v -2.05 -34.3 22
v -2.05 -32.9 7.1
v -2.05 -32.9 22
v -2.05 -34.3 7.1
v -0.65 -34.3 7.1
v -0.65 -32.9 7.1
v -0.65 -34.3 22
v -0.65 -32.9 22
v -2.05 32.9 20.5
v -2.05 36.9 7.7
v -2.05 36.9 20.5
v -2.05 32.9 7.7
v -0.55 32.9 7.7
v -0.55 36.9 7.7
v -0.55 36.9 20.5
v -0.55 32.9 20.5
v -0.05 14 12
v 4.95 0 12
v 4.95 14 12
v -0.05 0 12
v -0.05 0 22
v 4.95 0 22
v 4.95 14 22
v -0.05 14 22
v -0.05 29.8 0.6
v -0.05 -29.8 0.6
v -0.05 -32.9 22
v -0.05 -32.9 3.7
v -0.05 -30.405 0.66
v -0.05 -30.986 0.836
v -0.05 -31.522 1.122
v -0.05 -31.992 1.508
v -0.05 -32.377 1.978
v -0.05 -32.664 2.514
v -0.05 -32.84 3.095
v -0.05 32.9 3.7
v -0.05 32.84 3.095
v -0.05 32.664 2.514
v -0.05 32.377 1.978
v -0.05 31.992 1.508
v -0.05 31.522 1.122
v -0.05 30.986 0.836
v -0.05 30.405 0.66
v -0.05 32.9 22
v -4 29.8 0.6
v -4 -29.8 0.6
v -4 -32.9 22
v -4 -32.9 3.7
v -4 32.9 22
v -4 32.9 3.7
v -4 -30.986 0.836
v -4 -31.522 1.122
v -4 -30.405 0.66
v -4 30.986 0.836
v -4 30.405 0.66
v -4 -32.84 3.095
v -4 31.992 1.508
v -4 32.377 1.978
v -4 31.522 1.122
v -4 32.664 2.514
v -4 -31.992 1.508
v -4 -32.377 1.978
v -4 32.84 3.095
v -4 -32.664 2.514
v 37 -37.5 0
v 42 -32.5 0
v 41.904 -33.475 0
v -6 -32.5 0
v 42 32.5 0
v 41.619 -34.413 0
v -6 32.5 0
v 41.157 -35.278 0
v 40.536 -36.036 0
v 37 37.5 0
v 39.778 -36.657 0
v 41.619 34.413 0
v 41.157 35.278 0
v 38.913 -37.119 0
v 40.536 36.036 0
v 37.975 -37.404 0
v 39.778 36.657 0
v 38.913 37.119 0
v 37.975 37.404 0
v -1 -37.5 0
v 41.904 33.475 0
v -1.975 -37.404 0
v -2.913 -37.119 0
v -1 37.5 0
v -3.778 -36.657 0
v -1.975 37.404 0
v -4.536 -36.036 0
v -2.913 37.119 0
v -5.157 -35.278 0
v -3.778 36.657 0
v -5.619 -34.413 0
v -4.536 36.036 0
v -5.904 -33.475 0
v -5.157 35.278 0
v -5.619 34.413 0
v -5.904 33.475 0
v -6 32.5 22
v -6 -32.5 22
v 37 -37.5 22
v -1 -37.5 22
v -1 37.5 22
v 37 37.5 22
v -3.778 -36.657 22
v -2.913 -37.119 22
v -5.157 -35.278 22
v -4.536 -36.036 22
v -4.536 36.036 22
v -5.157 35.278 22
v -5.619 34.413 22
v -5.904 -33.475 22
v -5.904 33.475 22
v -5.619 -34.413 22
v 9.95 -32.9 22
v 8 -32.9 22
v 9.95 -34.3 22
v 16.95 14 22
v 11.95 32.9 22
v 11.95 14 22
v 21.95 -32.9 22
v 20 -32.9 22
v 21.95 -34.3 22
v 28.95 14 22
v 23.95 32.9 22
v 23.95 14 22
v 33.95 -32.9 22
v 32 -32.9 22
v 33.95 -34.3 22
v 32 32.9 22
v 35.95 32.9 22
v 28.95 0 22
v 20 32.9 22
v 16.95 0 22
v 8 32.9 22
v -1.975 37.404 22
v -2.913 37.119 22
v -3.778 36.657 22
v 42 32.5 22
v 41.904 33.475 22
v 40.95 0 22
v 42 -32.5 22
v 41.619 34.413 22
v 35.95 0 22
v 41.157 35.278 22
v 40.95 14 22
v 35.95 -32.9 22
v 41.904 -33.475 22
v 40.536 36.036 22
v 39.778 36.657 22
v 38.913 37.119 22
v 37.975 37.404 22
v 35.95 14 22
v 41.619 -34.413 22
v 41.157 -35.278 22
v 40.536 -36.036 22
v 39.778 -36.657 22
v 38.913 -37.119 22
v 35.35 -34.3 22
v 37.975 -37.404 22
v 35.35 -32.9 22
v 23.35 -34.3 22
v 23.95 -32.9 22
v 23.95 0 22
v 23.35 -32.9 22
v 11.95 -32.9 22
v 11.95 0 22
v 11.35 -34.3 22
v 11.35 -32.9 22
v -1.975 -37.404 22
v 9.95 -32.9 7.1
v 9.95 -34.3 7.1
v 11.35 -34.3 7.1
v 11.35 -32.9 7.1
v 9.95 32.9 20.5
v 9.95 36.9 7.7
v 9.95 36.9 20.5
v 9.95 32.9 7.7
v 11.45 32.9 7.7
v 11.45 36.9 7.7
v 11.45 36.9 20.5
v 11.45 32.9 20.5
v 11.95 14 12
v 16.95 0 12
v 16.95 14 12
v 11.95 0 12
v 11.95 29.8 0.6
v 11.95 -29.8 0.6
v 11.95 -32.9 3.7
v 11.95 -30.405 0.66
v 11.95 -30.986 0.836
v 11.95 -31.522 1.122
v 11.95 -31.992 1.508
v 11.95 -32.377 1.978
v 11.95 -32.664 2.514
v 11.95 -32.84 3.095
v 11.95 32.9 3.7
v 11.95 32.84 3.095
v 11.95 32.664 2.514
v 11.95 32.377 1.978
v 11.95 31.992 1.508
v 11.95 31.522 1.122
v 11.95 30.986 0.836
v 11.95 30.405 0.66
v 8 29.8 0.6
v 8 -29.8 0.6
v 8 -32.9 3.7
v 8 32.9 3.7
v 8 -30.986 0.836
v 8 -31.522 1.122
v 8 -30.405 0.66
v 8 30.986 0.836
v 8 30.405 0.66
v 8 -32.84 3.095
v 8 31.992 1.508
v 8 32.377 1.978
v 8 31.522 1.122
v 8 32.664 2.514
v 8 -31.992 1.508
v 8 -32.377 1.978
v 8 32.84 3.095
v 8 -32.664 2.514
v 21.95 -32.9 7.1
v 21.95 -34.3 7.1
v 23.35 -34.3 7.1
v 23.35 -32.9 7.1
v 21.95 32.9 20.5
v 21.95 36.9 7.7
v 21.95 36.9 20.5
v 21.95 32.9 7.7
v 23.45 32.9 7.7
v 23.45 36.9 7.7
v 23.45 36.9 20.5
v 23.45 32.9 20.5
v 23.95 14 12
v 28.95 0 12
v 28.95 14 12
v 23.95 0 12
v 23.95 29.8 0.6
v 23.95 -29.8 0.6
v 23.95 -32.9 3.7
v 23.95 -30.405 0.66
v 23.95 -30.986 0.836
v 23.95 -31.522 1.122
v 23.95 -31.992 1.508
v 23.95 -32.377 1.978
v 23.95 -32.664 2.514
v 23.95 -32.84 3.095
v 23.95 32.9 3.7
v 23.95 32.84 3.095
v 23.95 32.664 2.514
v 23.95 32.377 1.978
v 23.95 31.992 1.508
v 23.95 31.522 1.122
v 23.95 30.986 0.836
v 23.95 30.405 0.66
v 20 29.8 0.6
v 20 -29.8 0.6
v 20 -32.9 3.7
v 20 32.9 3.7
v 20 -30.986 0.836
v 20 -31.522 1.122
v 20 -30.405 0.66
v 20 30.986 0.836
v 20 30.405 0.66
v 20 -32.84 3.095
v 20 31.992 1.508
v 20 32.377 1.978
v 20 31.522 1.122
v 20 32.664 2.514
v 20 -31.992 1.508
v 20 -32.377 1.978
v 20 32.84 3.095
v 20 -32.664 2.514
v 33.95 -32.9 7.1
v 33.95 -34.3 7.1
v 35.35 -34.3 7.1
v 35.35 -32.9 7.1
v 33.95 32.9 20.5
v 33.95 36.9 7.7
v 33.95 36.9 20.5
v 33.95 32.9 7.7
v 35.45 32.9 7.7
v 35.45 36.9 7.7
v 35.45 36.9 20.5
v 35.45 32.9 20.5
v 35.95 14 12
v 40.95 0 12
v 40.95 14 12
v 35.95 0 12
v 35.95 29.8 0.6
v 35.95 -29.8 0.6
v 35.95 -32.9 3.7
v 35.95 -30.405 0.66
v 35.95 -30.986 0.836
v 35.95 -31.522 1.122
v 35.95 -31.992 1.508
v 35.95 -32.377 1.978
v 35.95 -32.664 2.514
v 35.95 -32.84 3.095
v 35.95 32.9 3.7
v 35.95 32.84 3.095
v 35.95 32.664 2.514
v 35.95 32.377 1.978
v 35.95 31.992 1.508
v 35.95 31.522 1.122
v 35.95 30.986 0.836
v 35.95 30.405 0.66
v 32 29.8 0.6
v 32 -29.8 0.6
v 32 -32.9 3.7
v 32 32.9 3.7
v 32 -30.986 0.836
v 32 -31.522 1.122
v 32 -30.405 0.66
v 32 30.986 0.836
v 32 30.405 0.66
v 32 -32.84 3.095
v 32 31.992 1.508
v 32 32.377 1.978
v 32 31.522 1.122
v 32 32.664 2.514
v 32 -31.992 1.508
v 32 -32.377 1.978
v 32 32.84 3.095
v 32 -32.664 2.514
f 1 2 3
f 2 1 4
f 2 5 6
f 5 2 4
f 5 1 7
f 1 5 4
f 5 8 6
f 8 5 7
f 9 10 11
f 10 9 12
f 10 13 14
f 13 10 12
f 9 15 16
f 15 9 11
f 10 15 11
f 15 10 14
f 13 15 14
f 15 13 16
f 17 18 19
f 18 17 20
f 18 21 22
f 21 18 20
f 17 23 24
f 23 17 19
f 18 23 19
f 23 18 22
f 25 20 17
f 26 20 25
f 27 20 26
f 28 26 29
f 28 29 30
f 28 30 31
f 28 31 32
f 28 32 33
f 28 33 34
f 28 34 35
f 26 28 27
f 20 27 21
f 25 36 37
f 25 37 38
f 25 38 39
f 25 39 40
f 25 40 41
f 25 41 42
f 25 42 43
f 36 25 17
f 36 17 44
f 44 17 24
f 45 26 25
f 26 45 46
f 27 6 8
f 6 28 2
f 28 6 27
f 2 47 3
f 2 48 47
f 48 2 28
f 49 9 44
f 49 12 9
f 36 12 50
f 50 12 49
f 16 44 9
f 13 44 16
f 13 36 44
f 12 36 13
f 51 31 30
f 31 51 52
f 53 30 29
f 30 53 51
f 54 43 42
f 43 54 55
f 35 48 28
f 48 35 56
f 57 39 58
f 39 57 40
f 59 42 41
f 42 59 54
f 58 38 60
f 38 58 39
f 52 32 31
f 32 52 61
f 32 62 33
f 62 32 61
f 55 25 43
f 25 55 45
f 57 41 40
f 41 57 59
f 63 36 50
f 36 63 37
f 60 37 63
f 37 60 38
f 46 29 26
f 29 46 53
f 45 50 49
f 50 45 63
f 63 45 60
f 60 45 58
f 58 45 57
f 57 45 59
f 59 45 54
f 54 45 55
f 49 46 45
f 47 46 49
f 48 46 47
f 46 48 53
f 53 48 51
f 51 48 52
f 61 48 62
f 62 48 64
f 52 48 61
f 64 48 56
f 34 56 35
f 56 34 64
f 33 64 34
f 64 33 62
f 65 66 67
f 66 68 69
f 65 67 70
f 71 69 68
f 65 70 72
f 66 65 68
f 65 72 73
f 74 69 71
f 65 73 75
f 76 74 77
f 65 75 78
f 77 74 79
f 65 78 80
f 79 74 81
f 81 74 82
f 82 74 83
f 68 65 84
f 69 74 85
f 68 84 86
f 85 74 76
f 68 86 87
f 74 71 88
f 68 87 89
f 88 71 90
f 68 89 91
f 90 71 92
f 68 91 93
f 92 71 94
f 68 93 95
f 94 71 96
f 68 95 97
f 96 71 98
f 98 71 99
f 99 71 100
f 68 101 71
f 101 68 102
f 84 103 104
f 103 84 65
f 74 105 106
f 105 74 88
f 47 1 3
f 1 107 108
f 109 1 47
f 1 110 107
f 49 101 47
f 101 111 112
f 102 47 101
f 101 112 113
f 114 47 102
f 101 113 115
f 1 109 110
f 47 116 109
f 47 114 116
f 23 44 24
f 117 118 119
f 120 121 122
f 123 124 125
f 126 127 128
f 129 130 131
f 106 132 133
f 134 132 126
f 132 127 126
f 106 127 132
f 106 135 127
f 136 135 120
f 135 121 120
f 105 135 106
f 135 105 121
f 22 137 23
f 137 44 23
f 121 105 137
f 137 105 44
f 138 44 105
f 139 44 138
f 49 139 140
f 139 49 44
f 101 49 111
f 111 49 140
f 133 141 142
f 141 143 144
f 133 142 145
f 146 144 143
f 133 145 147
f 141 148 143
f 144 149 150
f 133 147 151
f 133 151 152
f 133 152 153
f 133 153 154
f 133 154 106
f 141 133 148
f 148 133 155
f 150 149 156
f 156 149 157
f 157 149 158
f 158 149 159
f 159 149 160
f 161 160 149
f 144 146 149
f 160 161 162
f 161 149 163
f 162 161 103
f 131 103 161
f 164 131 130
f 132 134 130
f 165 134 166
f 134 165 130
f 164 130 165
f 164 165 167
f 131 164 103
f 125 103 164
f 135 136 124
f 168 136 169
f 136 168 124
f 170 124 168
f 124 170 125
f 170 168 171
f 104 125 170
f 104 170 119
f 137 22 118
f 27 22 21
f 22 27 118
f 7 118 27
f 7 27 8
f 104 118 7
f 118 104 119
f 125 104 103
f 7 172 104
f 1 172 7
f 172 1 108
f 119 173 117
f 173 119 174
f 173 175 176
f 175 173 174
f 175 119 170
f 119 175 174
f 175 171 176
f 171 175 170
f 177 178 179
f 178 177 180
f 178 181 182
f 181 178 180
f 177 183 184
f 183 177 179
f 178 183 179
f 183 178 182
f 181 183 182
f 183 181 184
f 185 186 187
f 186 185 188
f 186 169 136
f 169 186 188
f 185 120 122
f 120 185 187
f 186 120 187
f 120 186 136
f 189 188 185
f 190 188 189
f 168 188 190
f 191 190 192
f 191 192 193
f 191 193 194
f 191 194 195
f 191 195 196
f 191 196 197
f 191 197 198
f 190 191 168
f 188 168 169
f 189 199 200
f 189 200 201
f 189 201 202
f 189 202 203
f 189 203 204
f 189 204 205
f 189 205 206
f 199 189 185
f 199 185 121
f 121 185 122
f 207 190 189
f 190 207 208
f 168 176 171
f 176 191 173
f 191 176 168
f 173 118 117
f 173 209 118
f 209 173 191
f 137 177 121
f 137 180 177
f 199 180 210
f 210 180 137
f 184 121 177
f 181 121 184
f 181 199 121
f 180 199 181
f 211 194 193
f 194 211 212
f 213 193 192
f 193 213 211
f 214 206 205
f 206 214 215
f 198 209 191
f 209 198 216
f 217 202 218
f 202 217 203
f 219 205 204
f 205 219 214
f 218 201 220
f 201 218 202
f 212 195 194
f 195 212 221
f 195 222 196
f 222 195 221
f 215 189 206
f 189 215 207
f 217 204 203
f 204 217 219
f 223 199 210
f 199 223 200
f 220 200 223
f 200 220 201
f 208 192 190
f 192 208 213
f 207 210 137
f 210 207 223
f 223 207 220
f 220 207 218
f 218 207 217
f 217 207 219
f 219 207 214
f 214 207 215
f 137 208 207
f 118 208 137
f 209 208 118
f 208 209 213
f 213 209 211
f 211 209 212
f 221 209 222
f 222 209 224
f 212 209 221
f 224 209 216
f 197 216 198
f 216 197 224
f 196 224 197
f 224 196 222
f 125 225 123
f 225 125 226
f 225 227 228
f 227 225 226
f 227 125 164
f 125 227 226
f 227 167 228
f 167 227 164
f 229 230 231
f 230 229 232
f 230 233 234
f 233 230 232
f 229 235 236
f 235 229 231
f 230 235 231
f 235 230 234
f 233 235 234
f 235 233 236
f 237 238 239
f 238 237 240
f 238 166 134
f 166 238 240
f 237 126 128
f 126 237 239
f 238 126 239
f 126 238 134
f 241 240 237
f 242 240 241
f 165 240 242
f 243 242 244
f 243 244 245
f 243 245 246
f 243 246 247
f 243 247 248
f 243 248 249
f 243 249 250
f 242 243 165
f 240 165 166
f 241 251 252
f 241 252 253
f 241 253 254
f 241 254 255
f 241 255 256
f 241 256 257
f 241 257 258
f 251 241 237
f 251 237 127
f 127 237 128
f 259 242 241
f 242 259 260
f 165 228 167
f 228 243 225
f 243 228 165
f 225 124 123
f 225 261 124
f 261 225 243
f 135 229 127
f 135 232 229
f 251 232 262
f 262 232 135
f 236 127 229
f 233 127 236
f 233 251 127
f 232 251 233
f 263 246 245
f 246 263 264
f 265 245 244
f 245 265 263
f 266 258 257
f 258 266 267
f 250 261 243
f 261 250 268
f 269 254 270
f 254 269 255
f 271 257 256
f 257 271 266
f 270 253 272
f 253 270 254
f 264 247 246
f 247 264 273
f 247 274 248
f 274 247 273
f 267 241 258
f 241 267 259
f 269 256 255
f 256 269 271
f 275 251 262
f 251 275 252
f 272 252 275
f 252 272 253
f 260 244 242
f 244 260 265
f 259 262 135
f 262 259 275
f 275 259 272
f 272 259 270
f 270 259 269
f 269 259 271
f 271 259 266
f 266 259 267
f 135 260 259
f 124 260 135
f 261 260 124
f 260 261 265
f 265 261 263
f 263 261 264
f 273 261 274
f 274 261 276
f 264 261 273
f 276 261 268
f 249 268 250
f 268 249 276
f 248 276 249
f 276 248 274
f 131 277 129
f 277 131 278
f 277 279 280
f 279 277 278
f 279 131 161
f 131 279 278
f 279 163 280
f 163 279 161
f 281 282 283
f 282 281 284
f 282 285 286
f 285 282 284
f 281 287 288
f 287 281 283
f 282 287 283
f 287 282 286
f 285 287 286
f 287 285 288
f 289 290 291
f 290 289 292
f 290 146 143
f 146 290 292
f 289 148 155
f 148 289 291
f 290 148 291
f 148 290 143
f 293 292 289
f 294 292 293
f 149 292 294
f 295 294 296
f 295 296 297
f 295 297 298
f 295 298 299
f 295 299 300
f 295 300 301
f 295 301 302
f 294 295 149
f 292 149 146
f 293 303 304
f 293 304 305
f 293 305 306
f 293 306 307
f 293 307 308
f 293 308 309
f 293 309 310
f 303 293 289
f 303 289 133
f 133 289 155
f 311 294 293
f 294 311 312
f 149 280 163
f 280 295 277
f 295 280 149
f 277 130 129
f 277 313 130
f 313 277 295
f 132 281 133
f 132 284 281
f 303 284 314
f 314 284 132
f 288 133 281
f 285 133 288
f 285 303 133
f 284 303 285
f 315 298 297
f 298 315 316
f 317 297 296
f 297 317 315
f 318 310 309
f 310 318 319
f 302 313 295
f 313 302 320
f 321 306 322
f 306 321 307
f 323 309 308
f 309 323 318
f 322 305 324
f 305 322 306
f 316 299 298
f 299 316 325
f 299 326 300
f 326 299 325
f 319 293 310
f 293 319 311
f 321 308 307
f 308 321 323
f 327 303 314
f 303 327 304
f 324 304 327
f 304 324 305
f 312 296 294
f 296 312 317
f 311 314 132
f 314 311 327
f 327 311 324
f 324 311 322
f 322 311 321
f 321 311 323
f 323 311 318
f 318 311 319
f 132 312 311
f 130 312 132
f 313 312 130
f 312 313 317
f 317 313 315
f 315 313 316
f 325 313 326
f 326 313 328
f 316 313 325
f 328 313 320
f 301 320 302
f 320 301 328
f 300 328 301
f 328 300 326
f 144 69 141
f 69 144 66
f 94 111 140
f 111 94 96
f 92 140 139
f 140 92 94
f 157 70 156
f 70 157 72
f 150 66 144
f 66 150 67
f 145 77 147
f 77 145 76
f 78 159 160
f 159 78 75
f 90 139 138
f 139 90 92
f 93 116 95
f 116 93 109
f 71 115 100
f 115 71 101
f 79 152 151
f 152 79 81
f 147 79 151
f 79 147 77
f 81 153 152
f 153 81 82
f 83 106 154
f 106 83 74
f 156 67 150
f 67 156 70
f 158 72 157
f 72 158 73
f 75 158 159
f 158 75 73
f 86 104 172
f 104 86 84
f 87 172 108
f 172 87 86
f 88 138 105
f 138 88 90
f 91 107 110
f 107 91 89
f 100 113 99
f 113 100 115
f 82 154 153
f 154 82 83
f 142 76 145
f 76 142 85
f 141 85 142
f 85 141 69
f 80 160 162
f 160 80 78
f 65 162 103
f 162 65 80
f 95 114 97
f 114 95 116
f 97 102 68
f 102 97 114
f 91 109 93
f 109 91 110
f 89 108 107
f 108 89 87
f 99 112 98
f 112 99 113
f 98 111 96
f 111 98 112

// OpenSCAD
// file: rounded-rect.scad
$fn = 64;

linear_extrude(0, 0, 1) roundedRect(10, 20, 2);

module roundedRect(w, h, r) {
    square([w - 2 * r, h], center = true);
    square([w, h - 2 * r], center = true);
    translate([w/2 - r, h/2 - r, 0]) circle(r = r);
    translate([-(w/2 - r), h/2 - r, 0]) circle(r = r);
    translate([w/2 - r, -(h/2 - r), 0]) circle(r = r);
    translate([-(w/2 - r), -(h/2 - r), 0]) circle(r = r);
}
// file: pi-zero.scad
include <rounded-rect.scad>;

// piZero();

module piZero(includeCables = true, includeHeatsink = true, heightPadding = 0, sdWidth = 12, cameraWidth = 17, printerTolerance = 0) {
    // base board
    color("green")
        linear_extrude(0, 0, 1.55 + 2 + heightPadding + printerTolerance)
            difference() {
                roundedRect(30 + 2 * printerTolerance, 65 + 2 * printerTolerance, 3.5 -printerTolerance);
                *union() {
                    translate([11.5 + printerTolerance, 29 + printerTolerance, 0]) circle(r = 1.25 - printerTolerance);
                    translate([-11.5 - printerTolerance, 29 + printerTolerance, 0]) circle(r = 1.25 - printerTolerance);
                    translate([11.5 + printerTolerance, -29 - printerTolerance, 0]) circle(r = 1.25 - printerTolerance);
                    translate([-11.5 - printerTolerance, -29 - printerTolerance, 0]) circle(r = 1.25 - printerTolerance);
                };
            };
    // top stuff
    translate([0, 0, 1.55 + printerTolerance])
        color("cyan")
            union() {
                // camera port cover
                linear_extrude(0, 0, 1 + heightPadding + printerTolerance)
                    translate([0, -32.5 - printerTolerance, 0])
                        square([cameraWidth + 2 * printerTolerance, 2 + 2 * printerTolerance], center = true);
                // micro usb ports
                translate([-10, -8.9, 1])
                    rotate([0, -90, 0])
                        linear_extrude(0, 0, 6)
                            square([2 + 2 * printerTolerance, 8 + 2 * printerTolerance], center = true);
                translate([-10, -21.5, 1])
                    rotate([0, -90, 0])
                        linear_extrude(0, 0, 6)
                            square([2 + 2 * printerTolerance, 8 + 2 * printerTolerance], center = true);
                // micro usb port things
                if (includeCables) {
                    translate([-15, -8.9, 1])
                        rotate([0, -90, 0])
                            linear_extrude(0, 0, 8)
                                roundedRect(8, 11, 1);
                    translate([-15, -21.5, 1])
                        rotate([0, -90, 0])
                            linear_extrude(0, 0, 8)
                                roundedRect(8, 11, 1);
                }
                // micro hdmi port
                translate([-7, 20.1, 1.7])
                    rotate([0, -90, 0])
                        linear_extrude(0, 0, 9.5)
                            square([3.4 + 2 * printerTolerance, 11.5 + 2 * printerTolerance], center = true);
                // micro hdmi adapter
                if (includeCables) {
                    translate([-15, 20.1, 1.7])
                        rotate([0, -90, 0])
                            linear_extrude(0, 0, 9.5)
                                roundedRect(9 + 2 * printerTolerance, 14 + 2* printerTolerance, 2);
                }
                
                // microsd card
                translate([1.9, 28, 0])
                    linear_extrude(0, 0, 1.5 + heightPadding)
                        square([sdWidth + 2 * printerTolerance, 17 + 2 * printerTolerance], center = true);
                // cpu heatsink
                translate([-3, 32.5 - 18.5 - 7, 0])
                    linear_extrude(0, 0, 7)
                        square([14, 14], center = true);
            };
}
// main file
include <pi-zero.scad>;

$fn = 32;

numSlots = 4;
slotWidth = 12;
slotLength = 75;
height = 22;

intersection() {
    for (i = [0:numSlots -1]) {
        translate([i * slotWidth, 0, 0 ])
            piSlot();
    }
    linear_extrude(0, 0, height)
        translate([(numSlots - 1) / 2 * slotWidth, 0, 0])
            roundedRect(numSlots * slotWidth, slotLength, 5);
}

module piSlot() {
    difference() {
        linear_extrude(0, 0, height)
            square([slotWidth, slotLength], center = true);
        translate([-4, 0, 16])
            rotate([0, 90, 0])
                piZero(printerTolerance = 0.4, heightPadding = 0);
    }
}
